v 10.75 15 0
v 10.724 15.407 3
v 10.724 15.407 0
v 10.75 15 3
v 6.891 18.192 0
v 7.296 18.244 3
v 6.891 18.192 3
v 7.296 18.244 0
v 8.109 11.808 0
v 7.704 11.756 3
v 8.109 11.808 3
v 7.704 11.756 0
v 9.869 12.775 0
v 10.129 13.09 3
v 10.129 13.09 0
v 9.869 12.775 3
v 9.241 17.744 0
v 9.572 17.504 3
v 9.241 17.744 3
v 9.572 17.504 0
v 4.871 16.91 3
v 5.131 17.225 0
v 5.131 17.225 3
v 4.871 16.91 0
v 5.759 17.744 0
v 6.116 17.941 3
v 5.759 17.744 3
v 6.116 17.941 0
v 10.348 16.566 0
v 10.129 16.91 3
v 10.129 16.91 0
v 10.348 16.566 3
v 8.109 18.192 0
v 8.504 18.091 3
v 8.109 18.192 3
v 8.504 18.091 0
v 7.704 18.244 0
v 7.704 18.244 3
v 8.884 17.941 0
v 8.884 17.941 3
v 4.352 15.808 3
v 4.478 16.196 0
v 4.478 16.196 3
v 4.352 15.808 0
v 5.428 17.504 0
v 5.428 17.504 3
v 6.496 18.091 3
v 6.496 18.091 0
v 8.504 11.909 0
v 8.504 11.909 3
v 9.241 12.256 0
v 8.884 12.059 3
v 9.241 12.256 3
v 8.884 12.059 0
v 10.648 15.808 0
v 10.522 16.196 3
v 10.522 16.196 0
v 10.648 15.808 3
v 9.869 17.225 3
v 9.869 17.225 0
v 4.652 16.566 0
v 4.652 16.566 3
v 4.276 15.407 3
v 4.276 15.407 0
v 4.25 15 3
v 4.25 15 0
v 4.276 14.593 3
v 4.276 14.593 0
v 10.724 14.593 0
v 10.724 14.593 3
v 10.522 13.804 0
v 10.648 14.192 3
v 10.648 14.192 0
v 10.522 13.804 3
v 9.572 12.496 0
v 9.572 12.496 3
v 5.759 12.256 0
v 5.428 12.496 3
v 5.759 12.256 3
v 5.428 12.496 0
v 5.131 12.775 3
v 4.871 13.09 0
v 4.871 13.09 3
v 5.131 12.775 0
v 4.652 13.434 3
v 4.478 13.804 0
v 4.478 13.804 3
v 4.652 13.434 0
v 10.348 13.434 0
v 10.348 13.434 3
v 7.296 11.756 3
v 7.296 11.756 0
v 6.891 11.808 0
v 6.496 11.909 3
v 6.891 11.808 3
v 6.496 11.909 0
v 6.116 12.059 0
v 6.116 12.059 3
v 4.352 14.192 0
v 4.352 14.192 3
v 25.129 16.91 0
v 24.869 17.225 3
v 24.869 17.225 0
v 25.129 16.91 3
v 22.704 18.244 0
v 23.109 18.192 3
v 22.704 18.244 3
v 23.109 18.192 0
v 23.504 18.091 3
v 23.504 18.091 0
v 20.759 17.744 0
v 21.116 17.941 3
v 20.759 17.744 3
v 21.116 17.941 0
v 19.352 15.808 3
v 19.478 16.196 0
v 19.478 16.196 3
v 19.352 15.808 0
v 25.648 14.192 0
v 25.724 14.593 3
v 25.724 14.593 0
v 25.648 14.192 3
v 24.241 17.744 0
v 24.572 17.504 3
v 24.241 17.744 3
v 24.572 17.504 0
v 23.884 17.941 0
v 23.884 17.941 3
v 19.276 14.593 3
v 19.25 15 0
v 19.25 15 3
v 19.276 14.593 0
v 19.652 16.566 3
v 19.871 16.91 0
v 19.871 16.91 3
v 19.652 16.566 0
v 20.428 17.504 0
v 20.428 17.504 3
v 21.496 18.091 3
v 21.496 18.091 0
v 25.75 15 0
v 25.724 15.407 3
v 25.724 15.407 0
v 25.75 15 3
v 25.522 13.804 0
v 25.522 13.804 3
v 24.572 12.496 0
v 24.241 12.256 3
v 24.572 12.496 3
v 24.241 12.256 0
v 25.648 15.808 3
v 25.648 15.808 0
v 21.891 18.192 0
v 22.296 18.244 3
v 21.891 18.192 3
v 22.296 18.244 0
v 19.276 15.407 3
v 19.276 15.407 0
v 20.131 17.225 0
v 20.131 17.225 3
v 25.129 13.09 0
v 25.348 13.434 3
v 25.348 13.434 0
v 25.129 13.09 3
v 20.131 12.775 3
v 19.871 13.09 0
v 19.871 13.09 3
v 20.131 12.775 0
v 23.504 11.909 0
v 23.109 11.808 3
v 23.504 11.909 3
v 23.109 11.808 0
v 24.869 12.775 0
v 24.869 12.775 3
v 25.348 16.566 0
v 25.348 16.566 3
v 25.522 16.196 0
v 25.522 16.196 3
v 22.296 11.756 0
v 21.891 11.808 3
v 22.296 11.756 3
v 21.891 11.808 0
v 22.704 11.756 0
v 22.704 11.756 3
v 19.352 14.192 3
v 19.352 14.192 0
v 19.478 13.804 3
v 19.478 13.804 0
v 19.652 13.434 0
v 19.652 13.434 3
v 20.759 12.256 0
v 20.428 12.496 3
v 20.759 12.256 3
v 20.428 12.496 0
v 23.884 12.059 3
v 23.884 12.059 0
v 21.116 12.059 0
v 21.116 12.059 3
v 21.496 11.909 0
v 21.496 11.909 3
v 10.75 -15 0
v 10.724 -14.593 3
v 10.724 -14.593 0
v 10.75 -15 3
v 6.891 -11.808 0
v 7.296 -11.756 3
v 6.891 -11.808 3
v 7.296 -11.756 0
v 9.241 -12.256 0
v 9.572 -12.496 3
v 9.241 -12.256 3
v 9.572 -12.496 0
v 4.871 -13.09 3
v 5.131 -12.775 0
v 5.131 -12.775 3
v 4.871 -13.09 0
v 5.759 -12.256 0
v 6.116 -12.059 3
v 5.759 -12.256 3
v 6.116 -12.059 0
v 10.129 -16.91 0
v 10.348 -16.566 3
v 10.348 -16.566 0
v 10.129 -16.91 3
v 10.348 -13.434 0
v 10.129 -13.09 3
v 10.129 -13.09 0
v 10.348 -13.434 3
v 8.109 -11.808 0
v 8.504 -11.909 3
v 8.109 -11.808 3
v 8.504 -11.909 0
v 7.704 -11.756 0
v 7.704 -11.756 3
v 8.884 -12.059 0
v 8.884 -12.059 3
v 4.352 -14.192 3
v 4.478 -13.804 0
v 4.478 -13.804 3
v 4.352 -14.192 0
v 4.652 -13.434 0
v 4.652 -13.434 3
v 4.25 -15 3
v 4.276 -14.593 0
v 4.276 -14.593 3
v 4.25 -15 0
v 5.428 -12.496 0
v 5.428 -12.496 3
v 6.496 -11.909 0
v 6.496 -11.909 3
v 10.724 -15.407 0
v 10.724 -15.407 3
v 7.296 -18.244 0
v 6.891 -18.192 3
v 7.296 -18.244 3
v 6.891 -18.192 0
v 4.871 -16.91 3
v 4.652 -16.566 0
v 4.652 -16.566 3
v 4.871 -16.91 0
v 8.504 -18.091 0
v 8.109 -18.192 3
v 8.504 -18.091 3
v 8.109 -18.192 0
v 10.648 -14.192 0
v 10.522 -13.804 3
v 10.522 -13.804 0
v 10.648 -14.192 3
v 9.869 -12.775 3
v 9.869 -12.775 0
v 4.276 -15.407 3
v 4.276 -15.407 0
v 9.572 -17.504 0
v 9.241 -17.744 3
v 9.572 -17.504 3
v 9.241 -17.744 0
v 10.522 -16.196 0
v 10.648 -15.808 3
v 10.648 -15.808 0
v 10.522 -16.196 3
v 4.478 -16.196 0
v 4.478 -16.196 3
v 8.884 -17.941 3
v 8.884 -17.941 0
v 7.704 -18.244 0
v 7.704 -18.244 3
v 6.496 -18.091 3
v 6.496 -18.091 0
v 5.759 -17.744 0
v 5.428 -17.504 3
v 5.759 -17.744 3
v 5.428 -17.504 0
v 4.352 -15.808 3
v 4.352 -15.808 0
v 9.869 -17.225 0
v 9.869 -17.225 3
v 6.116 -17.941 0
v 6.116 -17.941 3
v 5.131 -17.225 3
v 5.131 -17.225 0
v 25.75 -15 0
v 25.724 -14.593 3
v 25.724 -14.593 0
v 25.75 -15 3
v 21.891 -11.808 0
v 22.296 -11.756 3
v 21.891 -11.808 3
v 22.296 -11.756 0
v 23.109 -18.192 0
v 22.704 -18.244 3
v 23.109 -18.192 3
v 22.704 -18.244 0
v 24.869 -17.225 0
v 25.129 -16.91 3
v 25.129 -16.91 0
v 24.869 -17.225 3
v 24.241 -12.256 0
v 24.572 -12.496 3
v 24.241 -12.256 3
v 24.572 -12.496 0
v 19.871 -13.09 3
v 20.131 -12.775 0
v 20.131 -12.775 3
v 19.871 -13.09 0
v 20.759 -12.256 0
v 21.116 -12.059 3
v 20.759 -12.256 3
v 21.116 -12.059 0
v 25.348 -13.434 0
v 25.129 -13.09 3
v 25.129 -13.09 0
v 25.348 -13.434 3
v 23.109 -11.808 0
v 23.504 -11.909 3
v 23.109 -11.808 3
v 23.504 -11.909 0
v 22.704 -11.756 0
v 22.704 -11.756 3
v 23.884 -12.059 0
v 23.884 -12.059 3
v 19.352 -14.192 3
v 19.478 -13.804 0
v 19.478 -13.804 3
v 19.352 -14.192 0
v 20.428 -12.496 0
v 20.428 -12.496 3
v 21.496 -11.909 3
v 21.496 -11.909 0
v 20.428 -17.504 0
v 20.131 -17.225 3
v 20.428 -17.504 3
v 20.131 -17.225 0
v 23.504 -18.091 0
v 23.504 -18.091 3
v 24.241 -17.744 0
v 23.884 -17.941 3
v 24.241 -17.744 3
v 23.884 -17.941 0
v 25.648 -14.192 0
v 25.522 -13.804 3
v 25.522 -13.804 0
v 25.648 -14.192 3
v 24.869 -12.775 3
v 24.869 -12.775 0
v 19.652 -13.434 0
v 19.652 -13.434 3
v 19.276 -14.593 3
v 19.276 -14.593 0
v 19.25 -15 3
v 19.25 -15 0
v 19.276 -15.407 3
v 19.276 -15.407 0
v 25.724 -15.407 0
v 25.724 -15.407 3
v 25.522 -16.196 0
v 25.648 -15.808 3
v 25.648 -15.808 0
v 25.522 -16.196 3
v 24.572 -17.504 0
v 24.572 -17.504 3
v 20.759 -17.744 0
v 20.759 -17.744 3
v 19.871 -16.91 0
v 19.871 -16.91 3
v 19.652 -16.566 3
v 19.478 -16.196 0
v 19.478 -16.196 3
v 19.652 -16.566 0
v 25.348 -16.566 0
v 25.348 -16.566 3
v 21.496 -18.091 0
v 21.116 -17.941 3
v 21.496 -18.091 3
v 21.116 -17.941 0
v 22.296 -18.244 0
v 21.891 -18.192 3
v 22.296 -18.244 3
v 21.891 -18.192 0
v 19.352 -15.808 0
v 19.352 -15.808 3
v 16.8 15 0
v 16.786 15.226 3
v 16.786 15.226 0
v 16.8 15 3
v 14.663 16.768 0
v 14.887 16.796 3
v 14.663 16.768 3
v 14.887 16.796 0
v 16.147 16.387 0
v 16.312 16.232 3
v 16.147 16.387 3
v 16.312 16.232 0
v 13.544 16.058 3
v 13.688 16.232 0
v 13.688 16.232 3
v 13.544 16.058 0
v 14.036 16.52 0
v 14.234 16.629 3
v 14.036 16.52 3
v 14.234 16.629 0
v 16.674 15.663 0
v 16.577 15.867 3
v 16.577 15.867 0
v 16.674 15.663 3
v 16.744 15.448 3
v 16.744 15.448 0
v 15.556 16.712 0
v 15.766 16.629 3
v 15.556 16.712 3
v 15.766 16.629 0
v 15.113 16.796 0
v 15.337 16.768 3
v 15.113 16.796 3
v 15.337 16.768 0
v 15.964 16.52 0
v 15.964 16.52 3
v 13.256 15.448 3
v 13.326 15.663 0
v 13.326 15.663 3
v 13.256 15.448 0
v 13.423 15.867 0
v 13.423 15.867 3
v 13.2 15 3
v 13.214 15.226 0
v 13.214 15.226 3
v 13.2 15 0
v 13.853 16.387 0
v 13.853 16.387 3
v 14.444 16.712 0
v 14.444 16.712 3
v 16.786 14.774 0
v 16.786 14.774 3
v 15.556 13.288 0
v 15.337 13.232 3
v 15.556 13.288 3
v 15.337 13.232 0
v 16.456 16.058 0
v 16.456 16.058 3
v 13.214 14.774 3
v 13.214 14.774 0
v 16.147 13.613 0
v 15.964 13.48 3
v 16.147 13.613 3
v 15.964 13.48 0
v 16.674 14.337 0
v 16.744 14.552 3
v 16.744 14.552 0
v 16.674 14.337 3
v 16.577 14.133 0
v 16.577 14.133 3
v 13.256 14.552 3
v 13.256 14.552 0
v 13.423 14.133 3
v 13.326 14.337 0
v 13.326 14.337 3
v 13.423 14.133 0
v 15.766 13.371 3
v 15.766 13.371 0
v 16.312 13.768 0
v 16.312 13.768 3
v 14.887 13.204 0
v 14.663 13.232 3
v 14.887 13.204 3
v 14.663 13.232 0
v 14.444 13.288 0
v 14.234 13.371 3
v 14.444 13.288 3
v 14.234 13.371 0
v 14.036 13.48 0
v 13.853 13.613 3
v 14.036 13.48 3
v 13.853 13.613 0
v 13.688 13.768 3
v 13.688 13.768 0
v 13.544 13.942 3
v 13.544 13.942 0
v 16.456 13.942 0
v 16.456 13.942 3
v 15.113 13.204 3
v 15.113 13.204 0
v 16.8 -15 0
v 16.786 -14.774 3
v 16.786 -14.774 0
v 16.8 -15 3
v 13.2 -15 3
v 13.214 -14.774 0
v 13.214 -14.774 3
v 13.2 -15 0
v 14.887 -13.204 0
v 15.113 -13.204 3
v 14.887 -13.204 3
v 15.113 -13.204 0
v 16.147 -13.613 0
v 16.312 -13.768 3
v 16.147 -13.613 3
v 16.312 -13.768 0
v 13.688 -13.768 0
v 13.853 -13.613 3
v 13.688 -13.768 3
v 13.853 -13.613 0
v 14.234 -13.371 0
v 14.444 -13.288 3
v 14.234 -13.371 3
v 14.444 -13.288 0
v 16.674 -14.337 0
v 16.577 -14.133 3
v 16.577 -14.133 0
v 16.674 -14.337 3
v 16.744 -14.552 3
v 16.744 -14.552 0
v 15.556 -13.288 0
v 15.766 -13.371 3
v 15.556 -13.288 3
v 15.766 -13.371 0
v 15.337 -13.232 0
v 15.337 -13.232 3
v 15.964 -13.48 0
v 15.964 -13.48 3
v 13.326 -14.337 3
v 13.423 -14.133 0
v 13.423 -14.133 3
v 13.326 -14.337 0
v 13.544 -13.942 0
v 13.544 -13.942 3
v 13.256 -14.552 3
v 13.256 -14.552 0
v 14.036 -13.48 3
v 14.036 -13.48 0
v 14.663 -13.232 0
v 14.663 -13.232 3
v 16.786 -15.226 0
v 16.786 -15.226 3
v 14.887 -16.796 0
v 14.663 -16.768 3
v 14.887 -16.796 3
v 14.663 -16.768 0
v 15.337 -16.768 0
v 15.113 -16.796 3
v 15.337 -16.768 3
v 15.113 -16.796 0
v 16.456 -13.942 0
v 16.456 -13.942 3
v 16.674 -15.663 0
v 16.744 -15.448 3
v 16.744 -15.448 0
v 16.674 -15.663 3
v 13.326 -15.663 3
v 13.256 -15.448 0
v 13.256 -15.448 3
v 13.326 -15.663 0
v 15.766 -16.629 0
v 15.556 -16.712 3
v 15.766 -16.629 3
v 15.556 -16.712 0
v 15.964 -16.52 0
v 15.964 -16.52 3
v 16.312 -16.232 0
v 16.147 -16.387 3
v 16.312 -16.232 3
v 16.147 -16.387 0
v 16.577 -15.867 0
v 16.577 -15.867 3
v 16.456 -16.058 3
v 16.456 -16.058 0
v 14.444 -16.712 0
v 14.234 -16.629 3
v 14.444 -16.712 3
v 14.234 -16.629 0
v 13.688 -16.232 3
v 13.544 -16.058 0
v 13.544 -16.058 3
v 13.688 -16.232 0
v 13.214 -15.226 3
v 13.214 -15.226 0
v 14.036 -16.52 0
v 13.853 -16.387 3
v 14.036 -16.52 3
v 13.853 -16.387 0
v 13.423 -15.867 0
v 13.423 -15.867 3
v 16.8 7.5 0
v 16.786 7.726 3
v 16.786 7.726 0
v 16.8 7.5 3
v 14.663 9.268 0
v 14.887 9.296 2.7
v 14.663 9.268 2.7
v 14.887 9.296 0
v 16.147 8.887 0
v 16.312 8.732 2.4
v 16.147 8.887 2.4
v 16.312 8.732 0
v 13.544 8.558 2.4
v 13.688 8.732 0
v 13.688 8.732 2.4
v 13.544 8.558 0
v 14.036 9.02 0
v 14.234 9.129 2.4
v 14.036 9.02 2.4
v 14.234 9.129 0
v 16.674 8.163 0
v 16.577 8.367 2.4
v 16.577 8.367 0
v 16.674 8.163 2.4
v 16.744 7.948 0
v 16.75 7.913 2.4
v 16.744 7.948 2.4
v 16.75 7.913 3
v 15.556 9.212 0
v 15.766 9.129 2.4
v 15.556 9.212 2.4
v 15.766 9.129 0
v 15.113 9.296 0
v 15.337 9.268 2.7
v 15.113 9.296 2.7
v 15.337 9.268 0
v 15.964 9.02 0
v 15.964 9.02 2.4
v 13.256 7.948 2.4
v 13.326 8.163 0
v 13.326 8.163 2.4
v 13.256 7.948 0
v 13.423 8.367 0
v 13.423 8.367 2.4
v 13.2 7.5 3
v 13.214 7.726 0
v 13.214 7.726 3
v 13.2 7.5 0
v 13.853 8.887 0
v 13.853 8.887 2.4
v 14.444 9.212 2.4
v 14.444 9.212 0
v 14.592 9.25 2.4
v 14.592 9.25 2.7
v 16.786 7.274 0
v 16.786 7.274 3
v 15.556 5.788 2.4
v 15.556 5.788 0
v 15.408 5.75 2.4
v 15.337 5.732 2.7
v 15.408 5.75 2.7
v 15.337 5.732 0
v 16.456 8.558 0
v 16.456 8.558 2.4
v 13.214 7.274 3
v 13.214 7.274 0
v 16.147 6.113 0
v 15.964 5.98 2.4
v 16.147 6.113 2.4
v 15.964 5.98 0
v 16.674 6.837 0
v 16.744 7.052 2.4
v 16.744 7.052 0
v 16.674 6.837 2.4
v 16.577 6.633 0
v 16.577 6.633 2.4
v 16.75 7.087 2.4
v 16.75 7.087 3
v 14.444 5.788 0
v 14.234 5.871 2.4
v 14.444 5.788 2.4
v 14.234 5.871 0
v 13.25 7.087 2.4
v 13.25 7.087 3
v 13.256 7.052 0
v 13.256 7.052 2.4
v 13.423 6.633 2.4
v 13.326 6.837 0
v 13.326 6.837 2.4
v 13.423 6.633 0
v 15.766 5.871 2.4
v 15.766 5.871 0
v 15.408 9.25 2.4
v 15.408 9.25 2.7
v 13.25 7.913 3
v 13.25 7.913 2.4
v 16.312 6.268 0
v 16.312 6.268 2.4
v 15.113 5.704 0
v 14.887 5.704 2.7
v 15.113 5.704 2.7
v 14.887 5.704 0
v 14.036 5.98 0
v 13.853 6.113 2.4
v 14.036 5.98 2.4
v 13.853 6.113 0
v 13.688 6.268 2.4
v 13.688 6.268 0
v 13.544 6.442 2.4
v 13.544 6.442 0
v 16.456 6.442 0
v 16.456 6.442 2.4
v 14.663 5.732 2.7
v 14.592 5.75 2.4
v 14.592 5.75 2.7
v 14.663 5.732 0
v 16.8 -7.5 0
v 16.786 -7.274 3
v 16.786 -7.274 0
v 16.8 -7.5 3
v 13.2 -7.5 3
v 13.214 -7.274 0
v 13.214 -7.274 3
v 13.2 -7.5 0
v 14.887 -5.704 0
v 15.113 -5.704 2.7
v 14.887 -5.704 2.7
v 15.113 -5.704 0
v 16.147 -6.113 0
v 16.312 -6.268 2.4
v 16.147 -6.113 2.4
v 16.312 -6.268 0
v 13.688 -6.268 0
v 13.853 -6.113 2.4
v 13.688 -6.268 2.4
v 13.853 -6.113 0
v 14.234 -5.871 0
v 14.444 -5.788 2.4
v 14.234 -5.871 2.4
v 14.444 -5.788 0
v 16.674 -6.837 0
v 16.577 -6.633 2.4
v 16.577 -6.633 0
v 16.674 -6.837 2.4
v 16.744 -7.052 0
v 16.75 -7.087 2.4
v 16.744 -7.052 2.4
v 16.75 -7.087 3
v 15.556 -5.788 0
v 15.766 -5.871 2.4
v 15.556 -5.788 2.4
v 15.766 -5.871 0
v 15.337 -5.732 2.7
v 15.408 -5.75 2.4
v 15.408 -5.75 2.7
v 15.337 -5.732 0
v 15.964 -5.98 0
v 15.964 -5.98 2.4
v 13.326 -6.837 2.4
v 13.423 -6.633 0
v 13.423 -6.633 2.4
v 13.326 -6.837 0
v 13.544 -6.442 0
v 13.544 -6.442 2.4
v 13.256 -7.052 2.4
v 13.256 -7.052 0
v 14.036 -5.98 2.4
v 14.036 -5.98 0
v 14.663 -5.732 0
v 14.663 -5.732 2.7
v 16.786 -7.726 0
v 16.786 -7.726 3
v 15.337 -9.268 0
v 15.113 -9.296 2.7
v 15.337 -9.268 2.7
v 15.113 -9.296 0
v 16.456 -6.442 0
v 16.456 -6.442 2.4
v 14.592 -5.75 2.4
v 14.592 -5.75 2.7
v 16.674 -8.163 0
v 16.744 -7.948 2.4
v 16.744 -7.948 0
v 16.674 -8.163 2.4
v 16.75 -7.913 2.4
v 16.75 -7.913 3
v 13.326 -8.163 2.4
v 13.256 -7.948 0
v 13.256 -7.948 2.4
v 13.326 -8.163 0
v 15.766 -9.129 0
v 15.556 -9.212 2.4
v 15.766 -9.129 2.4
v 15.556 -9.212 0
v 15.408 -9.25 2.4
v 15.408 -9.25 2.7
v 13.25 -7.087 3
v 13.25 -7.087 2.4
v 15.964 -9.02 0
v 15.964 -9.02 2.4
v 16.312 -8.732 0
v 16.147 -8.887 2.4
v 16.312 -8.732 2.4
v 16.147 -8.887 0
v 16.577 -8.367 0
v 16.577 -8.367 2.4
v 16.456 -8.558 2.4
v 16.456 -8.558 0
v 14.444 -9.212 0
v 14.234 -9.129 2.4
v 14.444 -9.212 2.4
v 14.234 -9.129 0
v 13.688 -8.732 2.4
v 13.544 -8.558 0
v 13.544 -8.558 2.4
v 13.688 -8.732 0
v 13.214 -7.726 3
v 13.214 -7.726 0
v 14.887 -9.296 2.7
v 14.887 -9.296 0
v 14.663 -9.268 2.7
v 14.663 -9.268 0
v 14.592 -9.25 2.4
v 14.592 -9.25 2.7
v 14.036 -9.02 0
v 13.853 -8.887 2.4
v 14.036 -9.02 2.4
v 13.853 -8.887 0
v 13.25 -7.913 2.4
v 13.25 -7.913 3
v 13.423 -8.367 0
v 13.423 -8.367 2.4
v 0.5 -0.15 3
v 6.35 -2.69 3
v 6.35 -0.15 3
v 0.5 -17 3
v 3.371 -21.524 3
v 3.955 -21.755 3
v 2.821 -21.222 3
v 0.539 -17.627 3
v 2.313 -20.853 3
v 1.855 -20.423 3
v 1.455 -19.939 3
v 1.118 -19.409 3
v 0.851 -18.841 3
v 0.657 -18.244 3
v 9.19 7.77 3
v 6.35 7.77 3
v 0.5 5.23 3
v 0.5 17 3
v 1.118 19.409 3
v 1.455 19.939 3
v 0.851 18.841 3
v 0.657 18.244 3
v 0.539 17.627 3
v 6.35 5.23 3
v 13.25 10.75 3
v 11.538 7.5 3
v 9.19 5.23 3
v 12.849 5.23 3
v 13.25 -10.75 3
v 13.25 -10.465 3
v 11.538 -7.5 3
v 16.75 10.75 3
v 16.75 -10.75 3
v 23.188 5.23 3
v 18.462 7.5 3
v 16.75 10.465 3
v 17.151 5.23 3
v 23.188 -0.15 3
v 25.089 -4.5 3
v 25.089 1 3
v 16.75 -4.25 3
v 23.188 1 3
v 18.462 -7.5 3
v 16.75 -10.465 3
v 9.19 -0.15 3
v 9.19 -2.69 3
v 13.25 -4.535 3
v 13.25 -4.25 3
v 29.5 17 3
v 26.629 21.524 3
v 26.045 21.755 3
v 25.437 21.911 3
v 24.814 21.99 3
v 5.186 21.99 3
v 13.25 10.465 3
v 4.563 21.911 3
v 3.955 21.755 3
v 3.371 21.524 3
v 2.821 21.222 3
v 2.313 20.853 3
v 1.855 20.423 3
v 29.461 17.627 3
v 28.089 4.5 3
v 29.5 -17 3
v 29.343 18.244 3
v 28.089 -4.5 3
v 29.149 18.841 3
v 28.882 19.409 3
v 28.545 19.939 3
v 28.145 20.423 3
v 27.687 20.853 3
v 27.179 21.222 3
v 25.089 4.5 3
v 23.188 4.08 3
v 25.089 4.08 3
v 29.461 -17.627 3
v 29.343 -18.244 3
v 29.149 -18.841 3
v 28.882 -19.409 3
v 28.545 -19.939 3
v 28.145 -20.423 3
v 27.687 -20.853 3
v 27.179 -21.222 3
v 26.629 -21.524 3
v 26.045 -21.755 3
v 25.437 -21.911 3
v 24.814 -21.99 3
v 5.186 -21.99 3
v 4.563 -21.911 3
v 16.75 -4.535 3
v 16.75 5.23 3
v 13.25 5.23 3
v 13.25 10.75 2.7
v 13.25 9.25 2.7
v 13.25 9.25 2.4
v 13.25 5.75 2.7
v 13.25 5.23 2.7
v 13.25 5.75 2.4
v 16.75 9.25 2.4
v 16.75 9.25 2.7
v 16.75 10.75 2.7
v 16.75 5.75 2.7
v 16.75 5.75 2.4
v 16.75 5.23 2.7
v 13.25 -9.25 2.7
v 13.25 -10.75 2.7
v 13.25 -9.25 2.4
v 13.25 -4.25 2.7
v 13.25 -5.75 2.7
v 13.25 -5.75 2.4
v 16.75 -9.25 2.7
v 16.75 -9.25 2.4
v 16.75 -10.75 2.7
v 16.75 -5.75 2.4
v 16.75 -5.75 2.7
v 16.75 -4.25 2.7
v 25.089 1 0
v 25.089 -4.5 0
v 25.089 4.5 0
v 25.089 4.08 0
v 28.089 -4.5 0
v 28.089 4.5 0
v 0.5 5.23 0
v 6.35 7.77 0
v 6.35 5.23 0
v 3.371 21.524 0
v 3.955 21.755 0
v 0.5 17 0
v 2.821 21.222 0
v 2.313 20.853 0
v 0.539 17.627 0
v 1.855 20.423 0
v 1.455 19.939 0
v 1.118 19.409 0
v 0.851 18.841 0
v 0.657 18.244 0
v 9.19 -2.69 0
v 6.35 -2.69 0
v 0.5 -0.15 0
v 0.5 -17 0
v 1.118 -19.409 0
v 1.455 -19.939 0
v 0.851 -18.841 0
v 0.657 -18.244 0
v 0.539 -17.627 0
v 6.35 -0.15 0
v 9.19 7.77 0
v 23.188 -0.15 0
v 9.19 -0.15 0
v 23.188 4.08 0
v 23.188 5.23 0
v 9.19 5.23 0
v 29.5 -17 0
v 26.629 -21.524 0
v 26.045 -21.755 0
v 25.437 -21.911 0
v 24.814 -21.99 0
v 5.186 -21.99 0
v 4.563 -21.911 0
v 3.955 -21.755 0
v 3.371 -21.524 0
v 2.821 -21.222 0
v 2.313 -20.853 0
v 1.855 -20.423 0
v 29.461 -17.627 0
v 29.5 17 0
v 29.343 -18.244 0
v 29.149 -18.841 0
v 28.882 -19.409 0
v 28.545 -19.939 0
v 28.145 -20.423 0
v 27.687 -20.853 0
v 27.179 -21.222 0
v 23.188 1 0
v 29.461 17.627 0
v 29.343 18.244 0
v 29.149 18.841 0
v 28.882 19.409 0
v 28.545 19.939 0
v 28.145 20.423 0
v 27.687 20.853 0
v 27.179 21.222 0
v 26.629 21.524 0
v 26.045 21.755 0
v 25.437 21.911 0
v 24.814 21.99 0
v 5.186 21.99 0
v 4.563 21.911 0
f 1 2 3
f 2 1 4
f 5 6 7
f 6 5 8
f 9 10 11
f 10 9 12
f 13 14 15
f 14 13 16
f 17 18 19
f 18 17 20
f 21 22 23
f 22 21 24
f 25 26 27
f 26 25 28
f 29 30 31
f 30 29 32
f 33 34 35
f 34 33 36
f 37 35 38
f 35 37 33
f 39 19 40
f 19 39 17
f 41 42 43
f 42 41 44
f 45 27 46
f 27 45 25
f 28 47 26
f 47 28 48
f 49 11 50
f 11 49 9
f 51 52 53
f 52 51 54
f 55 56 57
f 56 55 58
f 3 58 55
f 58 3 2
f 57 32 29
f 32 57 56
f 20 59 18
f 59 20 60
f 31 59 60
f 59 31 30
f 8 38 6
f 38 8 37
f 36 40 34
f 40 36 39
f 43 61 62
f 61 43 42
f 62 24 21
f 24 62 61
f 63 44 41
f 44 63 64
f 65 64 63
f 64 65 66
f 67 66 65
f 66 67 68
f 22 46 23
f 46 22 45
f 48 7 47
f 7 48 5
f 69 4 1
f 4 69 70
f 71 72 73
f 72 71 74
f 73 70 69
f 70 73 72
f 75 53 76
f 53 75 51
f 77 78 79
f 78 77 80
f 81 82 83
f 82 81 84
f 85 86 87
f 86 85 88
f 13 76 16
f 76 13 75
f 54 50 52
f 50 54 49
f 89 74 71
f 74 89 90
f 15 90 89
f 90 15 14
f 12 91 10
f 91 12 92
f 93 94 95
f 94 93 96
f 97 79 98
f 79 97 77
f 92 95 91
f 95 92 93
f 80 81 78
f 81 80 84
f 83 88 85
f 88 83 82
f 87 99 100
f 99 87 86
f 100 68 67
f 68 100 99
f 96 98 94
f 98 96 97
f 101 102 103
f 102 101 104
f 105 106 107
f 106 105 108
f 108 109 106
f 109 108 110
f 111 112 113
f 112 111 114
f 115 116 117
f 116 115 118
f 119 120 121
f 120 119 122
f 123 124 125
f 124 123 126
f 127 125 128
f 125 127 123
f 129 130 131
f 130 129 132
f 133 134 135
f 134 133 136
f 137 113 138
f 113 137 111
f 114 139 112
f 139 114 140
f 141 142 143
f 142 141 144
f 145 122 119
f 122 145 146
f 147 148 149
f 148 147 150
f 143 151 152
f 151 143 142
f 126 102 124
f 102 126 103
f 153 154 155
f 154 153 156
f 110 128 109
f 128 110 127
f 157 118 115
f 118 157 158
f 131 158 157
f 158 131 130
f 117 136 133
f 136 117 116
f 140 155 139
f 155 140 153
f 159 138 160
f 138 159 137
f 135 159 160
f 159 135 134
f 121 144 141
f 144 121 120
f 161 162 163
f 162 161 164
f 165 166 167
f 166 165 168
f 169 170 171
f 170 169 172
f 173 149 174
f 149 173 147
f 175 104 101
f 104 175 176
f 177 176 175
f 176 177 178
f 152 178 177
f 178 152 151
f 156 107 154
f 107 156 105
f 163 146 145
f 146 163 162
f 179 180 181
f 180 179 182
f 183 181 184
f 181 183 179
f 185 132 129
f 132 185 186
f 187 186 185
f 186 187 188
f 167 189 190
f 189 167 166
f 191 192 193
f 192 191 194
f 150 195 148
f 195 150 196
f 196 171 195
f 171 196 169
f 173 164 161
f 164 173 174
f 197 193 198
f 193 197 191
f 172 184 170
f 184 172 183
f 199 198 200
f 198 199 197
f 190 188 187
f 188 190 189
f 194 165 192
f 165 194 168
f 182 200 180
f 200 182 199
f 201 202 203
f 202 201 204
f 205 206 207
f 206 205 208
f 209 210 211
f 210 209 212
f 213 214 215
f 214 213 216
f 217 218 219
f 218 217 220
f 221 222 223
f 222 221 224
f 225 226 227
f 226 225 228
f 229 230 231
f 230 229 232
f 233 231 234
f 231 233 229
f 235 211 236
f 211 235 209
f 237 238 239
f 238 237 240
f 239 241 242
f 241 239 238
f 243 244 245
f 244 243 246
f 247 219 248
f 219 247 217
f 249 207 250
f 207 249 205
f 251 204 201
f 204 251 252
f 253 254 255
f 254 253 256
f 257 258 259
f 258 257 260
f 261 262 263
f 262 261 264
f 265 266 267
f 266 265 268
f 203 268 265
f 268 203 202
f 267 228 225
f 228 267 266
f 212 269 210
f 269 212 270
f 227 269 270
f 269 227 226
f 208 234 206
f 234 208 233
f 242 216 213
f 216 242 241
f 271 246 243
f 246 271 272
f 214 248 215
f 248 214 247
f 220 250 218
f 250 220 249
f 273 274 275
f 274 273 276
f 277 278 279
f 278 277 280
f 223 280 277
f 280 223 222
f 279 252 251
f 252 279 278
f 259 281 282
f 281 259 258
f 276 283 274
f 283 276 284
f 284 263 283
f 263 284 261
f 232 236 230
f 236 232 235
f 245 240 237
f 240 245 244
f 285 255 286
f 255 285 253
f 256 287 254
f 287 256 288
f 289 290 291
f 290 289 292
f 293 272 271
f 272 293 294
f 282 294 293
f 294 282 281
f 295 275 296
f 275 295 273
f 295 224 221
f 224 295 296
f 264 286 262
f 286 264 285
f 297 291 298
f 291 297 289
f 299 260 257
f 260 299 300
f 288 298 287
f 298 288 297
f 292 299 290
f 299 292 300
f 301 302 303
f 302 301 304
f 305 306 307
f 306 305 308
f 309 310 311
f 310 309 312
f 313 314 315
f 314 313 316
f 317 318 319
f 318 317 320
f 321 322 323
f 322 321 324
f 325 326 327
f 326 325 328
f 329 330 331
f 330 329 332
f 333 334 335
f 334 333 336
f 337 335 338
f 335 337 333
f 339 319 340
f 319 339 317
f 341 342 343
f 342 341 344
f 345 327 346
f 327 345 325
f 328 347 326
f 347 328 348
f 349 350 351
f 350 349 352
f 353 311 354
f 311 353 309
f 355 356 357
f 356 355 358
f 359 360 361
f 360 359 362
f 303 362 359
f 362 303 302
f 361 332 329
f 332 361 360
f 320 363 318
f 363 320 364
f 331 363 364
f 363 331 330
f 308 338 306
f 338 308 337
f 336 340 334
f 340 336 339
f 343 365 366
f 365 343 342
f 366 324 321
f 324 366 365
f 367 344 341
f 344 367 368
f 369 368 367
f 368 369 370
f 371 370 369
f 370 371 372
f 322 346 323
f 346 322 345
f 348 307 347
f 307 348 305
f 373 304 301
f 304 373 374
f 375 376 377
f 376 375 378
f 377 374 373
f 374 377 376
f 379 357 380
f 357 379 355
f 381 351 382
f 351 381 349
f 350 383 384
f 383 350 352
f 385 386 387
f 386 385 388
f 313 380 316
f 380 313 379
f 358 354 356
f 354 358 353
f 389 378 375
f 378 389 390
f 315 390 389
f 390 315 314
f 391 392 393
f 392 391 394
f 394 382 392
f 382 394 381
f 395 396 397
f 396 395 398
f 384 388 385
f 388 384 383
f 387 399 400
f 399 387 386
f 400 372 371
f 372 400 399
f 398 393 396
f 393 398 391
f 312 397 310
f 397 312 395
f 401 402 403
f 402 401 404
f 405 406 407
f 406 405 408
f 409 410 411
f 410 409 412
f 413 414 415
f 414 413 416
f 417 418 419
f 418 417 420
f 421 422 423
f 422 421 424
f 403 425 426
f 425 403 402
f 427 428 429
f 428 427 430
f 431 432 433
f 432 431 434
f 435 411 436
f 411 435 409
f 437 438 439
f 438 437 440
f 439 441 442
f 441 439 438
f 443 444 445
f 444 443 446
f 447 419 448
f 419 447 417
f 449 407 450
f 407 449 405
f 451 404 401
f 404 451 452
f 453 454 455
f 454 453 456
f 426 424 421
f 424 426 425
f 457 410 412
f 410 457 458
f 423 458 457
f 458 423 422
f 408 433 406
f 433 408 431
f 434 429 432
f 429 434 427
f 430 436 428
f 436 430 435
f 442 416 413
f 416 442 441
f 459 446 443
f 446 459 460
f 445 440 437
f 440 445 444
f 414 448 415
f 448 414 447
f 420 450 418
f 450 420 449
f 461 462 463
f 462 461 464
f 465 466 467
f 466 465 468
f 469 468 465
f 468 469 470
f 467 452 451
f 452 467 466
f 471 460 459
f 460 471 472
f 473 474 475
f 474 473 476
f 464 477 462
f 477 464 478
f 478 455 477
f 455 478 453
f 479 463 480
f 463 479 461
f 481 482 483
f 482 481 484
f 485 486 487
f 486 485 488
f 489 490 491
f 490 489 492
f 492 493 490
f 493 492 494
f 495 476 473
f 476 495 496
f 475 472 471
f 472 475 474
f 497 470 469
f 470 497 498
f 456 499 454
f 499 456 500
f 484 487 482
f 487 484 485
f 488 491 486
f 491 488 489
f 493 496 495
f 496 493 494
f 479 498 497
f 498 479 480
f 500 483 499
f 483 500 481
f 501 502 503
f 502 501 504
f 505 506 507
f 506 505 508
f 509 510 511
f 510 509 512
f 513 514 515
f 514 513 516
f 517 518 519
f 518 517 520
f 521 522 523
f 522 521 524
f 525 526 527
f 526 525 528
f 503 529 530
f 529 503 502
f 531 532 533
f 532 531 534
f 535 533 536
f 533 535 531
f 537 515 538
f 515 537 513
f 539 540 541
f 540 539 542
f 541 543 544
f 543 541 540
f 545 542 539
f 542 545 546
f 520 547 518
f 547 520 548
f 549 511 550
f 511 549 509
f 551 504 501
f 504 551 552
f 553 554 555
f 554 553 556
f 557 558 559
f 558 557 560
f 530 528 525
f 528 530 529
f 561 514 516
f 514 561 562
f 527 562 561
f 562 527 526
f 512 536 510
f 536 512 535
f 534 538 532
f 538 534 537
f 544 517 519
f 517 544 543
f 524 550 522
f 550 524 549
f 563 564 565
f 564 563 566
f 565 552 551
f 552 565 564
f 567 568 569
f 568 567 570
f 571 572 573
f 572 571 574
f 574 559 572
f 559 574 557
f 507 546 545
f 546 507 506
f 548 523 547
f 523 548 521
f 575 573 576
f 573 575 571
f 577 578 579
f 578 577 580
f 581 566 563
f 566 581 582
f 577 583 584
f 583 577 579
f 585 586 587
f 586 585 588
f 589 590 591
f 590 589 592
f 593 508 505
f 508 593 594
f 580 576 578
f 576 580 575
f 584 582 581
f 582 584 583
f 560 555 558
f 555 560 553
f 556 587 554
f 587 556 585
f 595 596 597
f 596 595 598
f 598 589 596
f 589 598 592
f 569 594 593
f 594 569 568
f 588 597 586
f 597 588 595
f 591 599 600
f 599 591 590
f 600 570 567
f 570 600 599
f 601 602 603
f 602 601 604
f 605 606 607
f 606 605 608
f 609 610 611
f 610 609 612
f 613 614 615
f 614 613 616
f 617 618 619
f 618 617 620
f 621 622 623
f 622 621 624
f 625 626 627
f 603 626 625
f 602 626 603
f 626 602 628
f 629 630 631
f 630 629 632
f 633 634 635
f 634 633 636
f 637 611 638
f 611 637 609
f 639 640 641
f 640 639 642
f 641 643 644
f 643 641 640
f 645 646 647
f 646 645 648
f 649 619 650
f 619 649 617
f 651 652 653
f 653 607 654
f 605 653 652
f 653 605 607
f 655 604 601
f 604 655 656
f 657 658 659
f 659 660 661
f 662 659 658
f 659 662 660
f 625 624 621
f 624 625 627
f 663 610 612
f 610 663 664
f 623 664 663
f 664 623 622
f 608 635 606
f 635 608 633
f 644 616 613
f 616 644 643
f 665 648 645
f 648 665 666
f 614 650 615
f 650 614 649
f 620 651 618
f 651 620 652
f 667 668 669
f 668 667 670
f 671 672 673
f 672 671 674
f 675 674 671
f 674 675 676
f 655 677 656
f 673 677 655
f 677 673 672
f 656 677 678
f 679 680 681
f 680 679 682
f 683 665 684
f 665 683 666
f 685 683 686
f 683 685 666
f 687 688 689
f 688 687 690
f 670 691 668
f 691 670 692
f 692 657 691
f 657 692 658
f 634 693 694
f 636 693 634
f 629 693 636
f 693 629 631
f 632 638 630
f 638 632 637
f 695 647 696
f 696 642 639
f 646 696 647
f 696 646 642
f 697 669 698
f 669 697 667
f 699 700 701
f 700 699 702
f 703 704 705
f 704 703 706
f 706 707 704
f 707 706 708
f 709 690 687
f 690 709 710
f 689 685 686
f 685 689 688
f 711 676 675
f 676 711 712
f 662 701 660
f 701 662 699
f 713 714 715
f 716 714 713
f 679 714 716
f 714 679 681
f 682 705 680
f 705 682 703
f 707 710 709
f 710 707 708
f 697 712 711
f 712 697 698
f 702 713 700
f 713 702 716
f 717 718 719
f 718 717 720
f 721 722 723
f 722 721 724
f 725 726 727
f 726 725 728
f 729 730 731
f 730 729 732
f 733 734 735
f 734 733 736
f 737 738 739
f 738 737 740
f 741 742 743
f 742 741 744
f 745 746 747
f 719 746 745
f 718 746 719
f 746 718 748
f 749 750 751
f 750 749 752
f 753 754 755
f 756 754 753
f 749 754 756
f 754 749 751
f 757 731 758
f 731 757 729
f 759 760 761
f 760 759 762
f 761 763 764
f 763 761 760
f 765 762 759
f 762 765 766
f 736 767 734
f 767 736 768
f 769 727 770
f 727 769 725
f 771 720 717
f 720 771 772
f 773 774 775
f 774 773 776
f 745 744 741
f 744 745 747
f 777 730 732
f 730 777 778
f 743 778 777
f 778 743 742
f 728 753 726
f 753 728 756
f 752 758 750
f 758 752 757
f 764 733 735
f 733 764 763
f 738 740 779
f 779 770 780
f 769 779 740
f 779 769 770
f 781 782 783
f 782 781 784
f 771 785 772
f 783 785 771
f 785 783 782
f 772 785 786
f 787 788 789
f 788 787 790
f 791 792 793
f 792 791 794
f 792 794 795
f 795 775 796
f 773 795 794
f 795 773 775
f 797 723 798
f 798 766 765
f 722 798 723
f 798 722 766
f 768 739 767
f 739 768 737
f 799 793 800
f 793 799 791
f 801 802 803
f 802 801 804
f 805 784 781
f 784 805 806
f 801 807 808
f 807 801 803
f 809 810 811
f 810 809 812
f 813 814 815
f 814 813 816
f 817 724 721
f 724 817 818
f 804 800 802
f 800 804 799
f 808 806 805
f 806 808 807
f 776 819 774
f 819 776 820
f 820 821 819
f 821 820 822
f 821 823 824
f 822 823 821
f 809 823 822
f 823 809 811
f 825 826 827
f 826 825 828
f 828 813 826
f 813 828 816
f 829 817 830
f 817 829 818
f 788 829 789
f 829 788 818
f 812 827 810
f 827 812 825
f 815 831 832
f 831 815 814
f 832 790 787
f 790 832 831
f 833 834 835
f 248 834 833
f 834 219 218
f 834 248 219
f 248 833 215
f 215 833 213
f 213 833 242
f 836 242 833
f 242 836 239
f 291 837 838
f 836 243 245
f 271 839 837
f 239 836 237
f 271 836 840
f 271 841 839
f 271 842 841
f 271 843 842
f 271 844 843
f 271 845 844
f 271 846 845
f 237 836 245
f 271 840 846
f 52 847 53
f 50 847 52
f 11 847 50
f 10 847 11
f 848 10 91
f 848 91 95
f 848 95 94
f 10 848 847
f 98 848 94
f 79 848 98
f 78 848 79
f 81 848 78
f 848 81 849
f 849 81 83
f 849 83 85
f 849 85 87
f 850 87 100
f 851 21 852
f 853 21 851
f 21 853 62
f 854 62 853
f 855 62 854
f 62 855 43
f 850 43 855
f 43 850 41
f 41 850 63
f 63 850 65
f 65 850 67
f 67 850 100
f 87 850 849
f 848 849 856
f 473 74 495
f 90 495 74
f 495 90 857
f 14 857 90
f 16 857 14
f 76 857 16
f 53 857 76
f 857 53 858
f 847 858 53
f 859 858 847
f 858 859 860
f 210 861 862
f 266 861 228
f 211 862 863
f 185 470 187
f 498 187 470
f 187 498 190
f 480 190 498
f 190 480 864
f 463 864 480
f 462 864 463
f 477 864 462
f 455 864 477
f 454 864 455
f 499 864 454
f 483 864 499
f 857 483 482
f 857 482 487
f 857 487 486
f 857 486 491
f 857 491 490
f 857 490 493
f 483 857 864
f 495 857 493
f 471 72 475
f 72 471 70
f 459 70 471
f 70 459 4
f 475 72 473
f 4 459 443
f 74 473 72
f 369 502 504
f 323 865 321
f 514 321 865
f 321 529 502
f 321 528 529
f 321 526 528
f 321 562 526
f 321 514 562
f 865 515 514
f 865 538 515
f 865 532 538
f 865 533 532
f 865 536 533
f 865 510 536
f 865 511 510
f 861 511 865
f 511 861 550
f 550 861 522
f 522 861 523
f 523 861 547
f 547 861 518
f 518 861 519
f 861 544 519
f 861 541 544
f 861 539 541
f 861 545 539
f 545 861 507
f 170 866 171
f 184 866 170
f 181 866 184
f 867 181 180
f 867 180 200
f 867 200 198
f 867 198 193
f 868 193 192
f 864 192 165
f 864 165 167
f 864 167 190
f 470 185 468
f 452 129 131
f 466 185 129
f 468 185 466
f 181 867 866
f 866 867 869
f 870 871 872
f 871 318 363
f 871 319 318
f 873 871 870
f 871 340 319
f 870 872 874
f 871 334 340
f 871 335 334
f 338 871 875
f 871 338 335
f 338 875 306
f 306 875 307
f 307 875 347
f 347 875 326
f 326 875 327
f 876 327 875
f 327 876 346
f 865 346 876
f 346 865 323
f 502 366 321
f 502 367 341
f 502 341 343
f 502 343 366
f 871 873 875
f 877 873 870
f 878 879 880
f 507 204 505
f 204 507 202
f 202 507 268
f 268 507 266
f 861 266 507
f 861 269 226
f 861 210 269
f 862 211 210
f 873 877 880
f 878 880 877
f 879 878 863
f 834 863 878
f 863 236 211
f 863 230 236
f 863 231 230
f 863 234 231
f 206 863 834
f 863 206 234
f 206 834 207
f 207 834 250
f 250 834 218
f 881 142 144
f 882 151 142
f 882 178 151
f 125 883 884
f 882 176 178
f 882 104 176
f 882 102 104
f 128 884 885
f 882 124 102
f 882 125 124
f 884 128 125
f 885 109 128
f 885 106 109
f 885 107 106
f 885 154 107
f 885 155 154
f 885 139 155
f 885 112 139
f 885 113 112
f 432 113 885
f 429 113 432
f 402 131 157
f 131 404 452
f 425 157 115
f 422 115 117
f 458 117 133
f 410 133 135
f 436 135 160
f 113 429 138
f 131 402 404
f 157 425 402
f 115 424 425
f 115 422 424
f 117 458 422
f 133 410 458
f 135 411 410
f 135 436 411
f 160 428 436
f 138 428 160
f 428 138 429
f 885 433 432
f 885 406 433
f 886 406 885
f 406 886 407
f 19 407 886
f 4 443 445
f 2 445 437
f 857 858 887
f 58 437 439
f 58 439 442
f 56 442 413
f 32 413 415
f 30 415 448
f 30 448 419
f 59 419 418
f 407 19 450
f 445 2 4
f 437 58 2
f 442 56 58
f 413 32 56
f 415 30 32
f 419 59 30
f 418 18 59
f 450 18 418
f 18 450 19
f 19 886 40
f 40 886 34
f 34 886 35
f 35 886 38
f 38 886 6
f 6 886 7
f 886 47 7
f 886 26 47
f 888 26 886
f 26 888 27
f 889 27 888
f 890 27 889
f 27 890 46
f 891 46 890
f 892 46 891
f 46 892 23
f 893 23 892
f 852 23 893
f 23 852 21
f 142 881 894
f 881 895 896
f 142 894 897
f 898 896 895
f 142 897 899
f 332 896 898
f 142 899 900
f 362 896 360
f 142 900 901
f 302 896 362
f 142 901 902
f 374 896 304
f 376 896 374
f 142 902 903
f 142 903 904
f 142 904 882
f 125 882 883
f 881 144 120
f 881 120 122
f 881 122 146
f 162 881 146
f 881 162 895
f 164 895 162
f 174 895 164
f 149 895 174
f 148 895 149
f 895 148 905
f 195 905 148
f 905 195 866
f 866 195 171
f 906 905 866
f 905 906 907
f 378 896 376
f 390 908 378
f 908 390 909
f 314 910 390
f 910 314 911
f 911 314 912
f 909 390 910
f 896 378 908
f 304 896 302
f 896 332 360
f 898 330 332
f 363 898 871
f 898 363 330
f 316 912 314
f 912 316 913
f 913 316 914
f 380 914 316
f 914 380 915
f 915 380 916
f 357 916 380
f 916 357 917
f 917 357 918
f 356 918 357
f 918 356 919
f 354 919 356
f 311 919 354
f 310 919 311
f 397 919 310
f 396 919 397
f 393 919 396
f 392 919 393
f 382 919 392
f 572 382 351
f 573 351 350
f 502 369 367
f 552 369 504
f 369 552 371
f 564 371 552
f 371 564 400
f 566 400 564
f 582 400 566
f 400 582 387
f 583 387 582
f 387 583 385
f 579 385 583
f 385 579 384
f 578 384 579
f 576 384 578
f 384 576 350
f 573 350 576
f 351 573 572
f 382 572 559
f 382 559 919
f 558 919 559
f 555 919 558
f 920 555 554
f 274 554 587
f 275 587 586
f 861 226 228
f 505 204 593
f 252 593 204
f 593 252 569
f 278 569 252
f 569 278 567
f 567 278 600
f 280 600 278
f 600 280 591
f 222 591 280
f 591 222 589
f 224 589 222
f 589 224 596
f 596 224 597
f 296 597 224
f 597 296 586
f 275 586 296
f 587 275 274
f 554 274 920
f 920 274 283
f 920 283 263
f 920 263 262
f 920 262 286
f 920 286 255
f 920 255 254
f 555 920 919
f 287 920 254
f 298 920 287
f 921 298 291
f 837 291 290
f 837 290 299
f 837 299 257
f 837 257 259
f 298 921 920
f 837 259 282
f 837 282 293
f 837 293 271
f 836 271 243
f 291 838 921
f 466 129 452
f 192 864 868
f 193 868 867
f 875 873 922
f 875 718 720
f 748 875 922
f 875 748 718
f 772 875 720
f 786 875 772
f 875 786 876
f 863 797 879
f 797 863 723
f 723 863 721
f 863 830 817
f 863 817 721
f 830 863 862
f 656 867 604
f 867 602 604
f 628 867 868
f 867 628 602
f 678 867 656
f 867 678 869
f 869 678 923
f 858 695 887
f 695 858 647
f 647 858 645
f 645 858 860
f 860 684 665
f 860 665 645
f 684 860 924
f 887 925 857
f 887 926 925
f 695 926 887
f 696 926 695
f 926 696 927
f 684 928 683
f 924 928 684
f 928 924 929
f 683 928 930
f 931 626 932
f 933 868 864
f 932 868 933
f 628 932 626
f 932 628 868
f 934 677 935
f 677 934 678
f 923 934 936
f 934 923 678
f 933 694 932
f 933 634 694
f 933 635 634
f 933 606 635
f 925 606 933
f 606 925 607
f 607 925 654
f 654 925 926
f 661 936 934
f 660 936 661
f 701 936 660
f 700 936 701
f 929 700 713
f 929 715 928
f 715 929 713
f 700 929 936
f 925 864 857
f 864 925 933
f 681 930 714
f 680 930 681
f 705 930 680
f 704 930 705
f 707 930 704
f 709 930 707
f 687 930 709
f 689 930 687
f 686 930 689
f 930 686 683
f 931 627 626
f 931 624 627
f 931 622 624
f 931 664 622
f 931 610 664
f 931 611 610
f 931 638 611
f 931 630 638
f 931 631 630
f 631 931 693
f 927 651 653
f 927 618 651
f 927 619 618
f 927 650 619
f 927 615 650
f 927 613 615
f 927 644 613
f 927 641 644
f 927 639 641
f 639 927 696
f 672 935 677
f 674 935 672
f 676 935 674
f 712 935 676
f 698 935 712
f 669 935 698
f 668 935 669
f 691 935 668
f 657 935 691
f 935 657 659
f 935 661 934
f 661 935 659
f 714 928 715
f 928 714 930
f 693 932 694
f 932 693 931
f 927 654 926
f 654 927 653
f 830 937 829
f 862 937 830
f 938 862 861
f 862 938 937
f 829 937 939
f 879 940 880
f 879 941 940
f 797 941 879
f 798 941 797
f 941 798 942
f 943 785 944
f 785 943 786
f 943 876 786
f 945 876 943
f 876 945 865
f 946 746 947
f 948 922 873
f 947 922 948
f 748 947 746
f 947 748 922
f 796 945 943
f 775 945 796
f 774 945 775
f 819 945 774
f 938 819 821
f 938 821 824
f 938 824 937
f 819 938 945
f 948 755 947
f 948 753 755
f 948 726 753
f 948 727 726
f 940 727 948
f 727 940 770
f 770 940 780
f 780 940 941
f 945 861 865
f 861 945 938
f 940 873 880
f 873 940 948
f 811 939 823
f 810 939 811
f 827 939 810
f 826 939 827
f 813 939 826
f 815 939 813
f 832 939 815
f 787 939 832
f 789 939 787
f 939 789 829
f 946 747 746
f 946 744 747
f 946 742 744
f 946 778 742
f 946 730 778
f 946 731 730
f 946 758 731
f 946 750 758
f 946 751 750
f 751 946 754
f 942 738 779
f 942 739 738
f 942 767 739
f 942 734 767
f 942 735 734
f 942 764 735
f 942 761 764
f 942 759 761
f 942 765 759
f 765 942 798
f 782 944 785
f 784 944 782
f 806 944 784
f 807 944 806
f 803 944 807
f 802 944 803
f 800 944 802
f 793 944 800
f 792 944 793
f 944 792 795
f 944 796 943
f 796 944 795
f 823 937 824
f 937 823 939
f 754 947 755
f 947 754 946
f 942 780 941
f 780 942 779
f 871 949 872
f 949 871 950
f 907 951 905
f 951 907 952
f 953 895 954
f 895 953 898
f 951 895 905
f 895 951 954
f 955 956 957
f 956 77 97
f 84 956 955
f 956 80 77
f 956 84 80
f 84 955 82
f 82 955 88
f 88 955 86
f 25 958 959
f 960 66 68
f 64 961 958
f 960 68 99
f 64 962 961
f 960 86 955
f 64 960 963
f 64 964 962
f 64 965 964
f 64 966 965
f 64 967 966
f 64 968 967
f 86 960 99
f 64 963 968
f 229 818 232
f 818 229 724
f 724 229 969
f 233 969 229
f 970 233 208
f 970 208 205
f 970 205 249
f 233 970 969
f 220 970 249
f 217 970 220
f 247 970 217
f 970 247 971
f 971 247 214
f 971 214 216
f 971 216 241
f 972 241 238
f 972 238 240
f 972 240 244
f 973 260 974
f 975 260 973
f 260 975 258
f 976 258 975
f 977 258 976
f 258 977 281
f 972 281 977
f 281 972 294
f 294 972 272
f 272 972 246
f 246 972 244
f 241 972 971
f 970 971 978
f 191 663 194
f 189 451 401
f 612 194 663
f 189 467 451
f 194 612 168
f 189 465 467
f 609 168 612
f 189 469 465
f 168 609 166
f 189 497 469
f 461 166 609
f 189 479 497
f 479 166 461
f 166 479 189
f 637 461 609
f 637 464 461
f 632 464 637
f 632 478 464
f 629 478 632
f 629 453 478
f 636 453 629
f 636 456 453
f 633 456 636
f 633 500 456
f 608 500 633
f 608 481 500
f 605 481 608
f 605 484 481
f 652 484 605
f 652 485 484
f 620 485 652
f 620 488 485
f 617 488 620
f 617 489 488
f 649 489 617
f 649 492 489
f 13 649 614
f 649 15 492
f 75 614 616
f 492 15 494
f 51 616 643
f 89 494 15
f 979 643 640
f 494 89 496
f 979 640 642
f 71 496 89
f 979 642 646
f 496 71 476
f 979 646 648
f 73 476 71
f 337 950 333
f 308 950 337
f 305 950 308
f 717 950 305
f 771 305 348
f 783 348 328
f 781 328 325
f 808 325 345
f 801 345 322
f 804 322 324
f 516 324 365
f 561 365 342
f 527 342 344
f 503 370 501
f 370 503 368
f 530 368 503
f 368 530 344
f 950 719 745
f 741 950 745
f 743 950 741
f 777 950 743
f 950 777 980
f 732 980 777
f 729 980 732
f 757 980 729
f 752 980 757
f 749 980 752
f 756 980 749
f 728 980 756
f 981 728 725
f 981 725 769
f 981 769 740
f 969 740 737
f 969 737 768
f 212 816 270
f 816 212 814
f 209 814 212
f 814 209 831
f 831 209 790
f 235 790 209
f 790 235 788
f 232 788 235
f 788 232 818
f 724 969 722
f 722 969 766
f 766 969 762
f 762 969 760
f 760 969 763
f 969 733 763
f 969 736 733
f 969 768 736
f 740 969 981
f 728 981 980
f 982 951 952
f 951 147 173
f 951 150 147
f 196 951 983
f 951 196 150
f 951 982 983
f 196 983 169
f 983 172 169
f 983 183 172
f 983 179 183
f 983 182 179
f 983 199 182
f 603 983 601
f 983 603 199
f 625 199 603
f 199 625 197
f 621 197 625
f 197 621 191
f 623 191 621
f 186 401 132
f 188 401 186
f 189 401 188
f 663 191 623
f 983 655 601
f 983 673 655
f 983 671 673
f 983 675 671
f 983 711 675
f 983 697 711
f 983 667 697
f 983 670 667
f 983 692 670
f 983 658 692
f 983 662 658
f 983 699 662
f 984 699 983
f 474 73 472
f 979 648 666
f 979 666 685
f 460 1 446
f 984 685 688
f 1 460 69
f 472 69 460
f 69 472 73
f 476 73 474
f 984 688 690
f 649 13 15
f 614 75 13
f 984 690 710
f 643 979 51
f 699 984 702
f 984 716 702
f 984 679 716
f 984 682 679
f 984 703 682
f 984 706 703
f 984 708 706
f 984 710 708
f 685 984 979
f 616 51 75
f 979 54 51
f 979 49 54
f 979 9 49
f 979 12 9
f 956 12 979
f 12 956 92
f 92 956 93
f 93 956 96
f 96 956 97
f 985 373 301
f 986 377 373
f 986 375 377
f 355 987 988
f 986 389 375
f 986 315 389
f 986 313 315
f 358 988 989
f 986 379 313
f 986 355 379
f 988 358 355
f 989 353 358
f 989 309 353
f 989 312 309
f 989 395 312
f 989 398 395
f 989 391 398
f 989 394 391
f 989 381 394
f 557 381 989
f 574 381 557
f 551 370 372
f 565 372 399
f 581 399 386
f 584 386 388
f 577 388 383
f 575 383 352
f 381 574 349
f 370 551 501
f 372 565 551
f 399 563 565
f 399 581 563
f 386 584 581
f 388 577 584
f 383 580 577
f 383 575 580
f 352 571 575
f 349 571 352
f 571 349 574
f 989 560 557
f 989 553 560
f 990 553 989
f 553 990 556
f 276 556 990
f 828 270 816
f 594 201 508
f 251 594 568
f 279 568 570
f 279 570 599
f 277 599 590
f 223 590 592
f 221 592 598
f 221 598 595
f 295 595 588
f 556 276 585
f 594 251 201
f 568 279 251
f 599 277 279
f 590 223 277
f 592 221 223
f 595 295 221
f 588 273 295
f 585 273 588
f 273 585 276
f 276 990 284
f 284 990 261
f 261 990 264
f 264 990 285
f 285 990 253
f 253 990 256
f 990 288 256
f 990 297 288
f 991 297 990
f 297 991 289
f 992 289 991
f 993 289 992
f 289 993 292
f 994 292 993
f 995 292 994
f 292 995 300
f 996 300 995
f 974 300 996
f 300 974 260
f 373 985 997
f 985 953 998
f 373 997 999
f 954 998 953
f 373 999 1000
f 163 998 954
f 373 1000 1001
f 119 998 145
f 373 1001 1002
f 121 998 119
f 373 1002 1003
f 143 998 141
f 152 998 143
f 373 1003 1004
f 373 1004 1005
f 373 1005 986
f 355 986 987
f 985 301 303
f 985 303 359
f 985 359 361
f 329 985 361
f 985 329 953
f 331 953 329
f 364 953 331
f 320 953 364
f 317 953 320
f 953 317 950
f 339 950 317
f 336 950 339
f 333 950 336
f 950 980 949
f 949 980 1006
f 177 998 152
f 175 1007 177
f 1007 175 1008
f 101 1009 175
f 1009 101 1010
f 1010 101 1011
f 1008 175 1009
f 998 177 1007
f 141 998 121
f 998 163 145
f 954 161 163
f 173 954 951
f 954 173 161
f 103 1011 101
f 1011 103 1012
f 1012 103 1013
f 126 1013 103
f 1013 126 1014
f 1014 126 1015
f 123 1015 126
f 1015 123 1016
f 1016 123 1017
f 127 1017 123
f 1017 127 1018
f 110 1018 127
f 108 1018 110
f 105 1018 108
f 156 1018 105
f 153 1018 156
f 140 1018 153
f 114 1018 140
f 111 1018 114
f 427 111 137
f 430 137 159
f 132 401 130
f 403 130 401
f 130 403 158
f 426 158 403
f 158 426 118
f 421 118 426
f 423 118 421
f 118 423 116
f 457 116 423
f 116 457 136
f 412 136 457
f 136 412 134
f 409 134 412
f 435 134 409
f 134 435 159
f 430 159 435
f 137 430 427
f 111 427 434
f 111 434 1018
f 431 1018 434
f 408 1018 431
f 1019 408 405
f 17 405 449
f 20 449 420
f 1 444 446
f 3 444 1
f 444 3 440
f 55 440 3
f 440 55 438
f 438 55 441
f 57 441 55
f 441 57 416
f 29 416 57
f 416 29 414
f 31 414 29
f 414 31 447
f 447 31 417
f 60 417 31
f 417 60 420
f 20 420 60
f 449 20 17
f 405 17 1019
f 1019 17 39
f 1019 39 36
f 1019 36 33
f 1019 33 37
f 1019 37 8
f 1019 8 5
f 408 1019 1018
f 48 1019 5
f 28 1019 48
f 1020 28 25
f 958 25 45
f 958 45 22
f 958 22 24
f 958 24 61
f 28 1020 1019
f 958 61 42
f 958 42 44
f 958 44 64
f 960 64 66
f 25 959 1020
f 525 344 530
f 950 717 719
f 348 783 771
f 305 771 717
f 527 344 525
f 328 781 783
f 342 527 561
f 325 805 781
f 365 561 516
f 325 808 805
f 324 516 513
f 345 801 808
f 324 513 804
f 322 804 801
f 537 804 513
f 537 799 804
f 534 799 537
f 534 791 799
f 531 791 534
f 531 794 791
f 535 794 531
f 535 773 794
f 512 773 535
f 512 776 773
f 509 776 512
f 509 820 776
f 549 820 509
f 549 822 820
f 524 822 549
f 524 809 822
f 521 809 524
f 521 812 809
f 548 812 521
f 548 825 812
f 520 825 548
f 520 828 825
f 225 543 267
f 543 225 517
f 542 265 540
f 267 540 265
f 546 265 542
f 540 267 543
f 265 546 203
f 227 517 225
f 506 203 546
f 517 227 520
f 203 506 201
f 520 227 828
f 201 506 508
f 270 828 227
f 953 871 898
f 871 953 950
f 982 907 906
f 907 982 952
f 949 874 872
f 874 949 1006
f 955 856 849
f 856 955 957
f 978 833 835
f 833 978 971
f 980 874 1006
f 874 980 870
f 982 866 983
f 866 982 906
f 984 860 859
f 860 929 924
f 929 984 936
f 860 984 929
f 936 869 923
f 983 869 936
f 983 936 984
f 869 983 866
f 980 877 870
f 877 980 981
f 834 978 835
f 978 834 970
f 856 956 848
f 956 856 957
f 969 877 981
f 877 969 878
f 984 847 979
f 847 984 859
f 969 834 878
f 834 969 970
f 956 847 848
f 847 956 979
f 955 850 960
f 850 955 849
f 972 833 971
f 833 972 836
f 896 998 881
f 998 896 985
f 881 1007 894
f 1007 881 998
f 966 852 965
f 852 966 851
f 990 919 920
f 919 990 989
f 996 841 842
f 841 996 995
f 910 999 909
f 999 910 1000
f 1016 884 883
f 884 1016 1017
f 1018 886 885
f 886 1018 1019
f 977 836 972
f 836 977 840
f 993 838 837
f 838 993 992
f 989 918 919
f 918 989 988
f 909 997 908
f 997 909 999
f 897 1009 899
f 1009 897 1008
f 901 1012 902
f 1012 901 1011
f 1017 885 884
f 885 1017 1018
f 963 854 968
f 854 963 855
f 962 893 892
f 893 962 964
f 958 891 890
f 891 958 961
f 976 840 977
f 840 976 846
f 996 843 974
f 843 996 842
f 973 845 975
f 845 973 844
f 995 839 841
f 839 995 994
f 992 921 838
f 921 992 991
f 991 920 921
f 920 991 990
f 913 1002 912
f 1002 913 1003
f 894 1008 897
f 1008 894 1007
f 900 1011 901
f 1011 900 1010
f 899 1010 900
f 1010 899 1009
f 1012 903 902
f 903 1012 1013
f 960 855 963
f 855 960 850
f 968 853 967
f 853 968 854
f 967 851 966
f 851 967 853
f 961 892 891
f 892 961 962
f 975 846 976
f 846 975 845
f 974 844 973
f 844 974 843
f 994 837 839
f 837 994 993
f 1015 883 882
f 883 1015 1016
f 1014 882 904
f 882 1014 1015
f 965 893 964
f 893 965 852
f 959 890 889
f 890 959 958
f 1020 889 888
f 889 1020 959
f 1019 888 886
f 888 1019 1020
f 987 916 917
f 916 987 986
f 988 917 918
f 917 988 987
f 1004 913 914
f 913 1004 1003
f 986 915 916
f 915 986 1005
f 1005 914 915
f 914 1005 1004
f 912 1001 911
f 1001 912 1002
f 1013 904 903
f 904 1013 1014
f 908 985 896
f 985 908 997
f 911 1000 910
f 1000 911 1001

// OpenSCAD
$fn = 50;


difference() {
	union() {
		translate(v = [15.0000000000, 0, 0]) {
			rotate(a = [0, 0, 0]) {
				hull() {
					translate(v = [-9.5000000000, 17.0000000000, 0]) {
						rotate(a = [0, 0, 0]) {
							translate(v = [0, 0, 0]) {
								rotate(a = [0, 0, 0]) {
									cylinder(h = 3, r = 5);
								}
							}
						}
					}
					translate(v = [9.5000000000, 17.0000000000, 0]) {
						rotate(a = [0, 0, 0]) {
							translate(v = [0, 0, 0]) {
								rotate(a = [0, 0, 0]) {
									cylinder(h = 3, r = 5);
								}
							}
						}
					}
					translate(v = [-9.5000000000, -17.0000000000, 0]) {
						rotate(a = [0, 0, 0]) {
							translate(v = [0, 0, 0]) {
								rotate(a = [0, 0, 0]) {
									cylinder(h = 3, r = 5);
								}
							}
						}
					}
					translate(v = [9.5000000000, -17.0000000000, 0]) {
						rotate(a = [0, 0, 0]) {
							translate(v = [0, 0, 0]) {
								rotate(a = [0, 0, 0]) {
									cylinder(h = 3, r = 5);
								}
							}
						}
					}
				}
			}
		}
	}
	union() {
		translate(v = [7.5000000000, 15.0000000000, -125.0000000000]) {
			rotate(a = [0, 0, 0]) {
				cylinder(h = 250, r = 3.2500000000);
			}
		}
		translate(v = [22.5000000000, 15.0000000000, -125.0000000000]) {
			rotate(a = [0, 0, 0]) {
				cylinder(h = 250, r = 3.2500000000);
			}
		}
		translate(v = [7.5000000000, -15.0000000000, -125.0000000000]) {
			rotate(a = [0, 0, 0]) {
				cylinder(h = 250, r = 3.2500000000);
			}
		}
		translate(v = [22.5000000000, -15.0000000000, -125.0000000000]) {
			rotate(a = [0, 0, 0]) {
				cylinder(h = 250, r = 3.2500000000);
			}
		}
		translate(v = [7.5000000000, 15.0000000000, -125.0000000000]) {
			rotate(a = [0, 0, 0]) {
				cylinder(h = 250, r = 1.8000000000);
			}
		}
		translate(v = [15.0000000000, 15.0000000000, -125.0000000000]) {
			rotate(a = [0, 0, 0]) {
				cylinder(h = 250, r = 1.8000000000);
			}
		}
		translate(v = [22.5000000000, 15.0000000000, -125.0000000000]) {
			rotate(a = [0, 0, 0]) {
				cylinder(h = 250, r = 1.8000000000);
			}
		}
		translate(v = [7.5000000000, -15.0000000000, -125.0000000000]) {
			rotate(a = [0, 0, 0]) {
				cylinder(h = 250, r = 1.8000000000);
			}
		}
		translate(v = [15.0000000000, -15.0000000000, -125.0000000000]) {
			rotate(a = [0, 0, 0]) {
				cylinder(h = 250, r = 1.8000000000);
			}
		}
		translate(v = [22.5000000000, -15.0000000000, -125.0000000000]) {
			rotate(a = [0, 0, 0]) {
				cylinder(h = 250, r = 1.8000000000);
			}
		}
		translate(v = [15, 7.5000000000, -125.0000000000]) {
			rotate(a = [0, 0, 0]) {
				cylinder(h = 250, r = 1.8000000000);
			}
		}
		translate(v = [15, -7.5000000000, -125.0000000000]) {
			rotate(a = [0, 0, 0]) {
				cylinder(h = 250, r = 1.8000000000);
			}
		}
		translate(v = [15, 7.5000000000, 3]) {
			rotate(a = [0, 0, 0]) {
				translate(v = [0, 0, 0]) {
					rotate(a = [0, 0, 0]) {
						linear_extrude(height = 3) {
							polygon(points = [[3.4620000000, 0.0000000000], [1.7310000000, 2.9981799479], [-1.7310000000, 2.9981799479], [-3.4620000000, 0.0000000000], [-1.7310000000, -2.9981799479], [1.7310000000, -2.9981799479]]);
						}
					}
				}
			}
		}
		#translate(v = [13.2500000000, 4.2500000000, 6]) {
			rotate(a = [0, 0, 0]) {
				cube(size = [3.5000000000, 6.5000000000, 0.3000000000]);
			}
		}
		#translate(v = [13.2500000000, 5.7500000000, 6.3000000000]) {
			rotate(a = [0, 0, 0]) {
				cube(size = [3.5000000000, 3.5000000000, 0.3000000000]);
			}
		}
		#translate(v = [13.2500000000, 4.2500000000, 2.7000000000]) {
			rotate(a = [0, 0, 0]) {
				cube(size = [3.5000000000, 6.5000000000, 0.3000000000]);
			}
		}
		#translate(v = [13.2500000000, 5.7500000000, 2.4000000000]) {
			rotate(a = [0, 0, 0]) {
				cube(size = [3.5000000000, 3.5000000000, 0.3000000000]);
			}
		}
		translate(v = [15, -7.5000000000, 3]) {
			rotate(a = [0, 0, 0]) {
				translate(v = [0, 0, 0]) {
					rotate(a = [0, 0, 0]) {
						linear_extrude(height = 3) {
							polygon(points = [[3.4620000000, 0.0000000000], [1.7310000000, 2.9981799479], [-1.7310000000, 2.9981799479], [-3.4620000000, 0.0000000000], [-1.7310000000, -2.9981799479], [1.7310000000, -2.9981799479]]);
						}
					}
				}
			}
		}
		#translate(v = [13.2500000000, -10.7500000000, 6]) {
			rotate(a = [0, 0, 0]) {
				cube(size = [3.5000000000, 6.5000000000, 0.3000000000]);
			}
		}
		#translate(v = [13.2500000000, -9.2500000000, 6.3000000000]) {
			rotate(a = [0, 0, 0]) {
				cube(size = [3.5000000000, 3.5000000000, 0.3000000000]);
			}
		}
		#translate(v = [13.2500000000, -10.7500000000, 2.7000000000]) {
			rotate(a = [0, 0, 0]) {
				cube(size = [3.5000000000, 6.5000000000, 0.3000000000]);
			}
		}
		#translate(v = [13.2500000000, -9.2500000000, 2.4000000000]) {
			rotate(a = [0, 0, 0]) {
				cube(size = [3.5000000000, 3.5000000000, 0.3000000000]);
			}
		}
		translate(v = [25.0890000000, -4.5000000000, 0]) {
			rotate(a = [0, 0, 0]) {
				cube(size = [3, 9, 10]);
			}
		}
		translate(v = [23.0670000000, 1.0000000000, 0]) {
			rotate(a = [0, 0, 0]) {
				cube(size = [5, 3.0800000000, 3]);
			}
		}
		translate(v = [0.2040000000, -0.1500000000, 0]) {
			rotate(a = [0, 0, 0]) {
				cube(size = [6.3000000000, 5.3800000000, 3]);
			}
		}
		translate(v = [8.8880000000, -0.1500000000, 0]) {
			rotate(a = [0, 0, 0]) {
				cube(size = [14.3000000000, 5.3800000000, 3]);
			}
		}
		translate(v = [6.3500000000, -2.6900000000, 0]) {
			rotate(a = [0, 0, 0]) {
				cube(size = [2.8400000000, 10.4600000000, 3]);
			}
		}
	}
}
